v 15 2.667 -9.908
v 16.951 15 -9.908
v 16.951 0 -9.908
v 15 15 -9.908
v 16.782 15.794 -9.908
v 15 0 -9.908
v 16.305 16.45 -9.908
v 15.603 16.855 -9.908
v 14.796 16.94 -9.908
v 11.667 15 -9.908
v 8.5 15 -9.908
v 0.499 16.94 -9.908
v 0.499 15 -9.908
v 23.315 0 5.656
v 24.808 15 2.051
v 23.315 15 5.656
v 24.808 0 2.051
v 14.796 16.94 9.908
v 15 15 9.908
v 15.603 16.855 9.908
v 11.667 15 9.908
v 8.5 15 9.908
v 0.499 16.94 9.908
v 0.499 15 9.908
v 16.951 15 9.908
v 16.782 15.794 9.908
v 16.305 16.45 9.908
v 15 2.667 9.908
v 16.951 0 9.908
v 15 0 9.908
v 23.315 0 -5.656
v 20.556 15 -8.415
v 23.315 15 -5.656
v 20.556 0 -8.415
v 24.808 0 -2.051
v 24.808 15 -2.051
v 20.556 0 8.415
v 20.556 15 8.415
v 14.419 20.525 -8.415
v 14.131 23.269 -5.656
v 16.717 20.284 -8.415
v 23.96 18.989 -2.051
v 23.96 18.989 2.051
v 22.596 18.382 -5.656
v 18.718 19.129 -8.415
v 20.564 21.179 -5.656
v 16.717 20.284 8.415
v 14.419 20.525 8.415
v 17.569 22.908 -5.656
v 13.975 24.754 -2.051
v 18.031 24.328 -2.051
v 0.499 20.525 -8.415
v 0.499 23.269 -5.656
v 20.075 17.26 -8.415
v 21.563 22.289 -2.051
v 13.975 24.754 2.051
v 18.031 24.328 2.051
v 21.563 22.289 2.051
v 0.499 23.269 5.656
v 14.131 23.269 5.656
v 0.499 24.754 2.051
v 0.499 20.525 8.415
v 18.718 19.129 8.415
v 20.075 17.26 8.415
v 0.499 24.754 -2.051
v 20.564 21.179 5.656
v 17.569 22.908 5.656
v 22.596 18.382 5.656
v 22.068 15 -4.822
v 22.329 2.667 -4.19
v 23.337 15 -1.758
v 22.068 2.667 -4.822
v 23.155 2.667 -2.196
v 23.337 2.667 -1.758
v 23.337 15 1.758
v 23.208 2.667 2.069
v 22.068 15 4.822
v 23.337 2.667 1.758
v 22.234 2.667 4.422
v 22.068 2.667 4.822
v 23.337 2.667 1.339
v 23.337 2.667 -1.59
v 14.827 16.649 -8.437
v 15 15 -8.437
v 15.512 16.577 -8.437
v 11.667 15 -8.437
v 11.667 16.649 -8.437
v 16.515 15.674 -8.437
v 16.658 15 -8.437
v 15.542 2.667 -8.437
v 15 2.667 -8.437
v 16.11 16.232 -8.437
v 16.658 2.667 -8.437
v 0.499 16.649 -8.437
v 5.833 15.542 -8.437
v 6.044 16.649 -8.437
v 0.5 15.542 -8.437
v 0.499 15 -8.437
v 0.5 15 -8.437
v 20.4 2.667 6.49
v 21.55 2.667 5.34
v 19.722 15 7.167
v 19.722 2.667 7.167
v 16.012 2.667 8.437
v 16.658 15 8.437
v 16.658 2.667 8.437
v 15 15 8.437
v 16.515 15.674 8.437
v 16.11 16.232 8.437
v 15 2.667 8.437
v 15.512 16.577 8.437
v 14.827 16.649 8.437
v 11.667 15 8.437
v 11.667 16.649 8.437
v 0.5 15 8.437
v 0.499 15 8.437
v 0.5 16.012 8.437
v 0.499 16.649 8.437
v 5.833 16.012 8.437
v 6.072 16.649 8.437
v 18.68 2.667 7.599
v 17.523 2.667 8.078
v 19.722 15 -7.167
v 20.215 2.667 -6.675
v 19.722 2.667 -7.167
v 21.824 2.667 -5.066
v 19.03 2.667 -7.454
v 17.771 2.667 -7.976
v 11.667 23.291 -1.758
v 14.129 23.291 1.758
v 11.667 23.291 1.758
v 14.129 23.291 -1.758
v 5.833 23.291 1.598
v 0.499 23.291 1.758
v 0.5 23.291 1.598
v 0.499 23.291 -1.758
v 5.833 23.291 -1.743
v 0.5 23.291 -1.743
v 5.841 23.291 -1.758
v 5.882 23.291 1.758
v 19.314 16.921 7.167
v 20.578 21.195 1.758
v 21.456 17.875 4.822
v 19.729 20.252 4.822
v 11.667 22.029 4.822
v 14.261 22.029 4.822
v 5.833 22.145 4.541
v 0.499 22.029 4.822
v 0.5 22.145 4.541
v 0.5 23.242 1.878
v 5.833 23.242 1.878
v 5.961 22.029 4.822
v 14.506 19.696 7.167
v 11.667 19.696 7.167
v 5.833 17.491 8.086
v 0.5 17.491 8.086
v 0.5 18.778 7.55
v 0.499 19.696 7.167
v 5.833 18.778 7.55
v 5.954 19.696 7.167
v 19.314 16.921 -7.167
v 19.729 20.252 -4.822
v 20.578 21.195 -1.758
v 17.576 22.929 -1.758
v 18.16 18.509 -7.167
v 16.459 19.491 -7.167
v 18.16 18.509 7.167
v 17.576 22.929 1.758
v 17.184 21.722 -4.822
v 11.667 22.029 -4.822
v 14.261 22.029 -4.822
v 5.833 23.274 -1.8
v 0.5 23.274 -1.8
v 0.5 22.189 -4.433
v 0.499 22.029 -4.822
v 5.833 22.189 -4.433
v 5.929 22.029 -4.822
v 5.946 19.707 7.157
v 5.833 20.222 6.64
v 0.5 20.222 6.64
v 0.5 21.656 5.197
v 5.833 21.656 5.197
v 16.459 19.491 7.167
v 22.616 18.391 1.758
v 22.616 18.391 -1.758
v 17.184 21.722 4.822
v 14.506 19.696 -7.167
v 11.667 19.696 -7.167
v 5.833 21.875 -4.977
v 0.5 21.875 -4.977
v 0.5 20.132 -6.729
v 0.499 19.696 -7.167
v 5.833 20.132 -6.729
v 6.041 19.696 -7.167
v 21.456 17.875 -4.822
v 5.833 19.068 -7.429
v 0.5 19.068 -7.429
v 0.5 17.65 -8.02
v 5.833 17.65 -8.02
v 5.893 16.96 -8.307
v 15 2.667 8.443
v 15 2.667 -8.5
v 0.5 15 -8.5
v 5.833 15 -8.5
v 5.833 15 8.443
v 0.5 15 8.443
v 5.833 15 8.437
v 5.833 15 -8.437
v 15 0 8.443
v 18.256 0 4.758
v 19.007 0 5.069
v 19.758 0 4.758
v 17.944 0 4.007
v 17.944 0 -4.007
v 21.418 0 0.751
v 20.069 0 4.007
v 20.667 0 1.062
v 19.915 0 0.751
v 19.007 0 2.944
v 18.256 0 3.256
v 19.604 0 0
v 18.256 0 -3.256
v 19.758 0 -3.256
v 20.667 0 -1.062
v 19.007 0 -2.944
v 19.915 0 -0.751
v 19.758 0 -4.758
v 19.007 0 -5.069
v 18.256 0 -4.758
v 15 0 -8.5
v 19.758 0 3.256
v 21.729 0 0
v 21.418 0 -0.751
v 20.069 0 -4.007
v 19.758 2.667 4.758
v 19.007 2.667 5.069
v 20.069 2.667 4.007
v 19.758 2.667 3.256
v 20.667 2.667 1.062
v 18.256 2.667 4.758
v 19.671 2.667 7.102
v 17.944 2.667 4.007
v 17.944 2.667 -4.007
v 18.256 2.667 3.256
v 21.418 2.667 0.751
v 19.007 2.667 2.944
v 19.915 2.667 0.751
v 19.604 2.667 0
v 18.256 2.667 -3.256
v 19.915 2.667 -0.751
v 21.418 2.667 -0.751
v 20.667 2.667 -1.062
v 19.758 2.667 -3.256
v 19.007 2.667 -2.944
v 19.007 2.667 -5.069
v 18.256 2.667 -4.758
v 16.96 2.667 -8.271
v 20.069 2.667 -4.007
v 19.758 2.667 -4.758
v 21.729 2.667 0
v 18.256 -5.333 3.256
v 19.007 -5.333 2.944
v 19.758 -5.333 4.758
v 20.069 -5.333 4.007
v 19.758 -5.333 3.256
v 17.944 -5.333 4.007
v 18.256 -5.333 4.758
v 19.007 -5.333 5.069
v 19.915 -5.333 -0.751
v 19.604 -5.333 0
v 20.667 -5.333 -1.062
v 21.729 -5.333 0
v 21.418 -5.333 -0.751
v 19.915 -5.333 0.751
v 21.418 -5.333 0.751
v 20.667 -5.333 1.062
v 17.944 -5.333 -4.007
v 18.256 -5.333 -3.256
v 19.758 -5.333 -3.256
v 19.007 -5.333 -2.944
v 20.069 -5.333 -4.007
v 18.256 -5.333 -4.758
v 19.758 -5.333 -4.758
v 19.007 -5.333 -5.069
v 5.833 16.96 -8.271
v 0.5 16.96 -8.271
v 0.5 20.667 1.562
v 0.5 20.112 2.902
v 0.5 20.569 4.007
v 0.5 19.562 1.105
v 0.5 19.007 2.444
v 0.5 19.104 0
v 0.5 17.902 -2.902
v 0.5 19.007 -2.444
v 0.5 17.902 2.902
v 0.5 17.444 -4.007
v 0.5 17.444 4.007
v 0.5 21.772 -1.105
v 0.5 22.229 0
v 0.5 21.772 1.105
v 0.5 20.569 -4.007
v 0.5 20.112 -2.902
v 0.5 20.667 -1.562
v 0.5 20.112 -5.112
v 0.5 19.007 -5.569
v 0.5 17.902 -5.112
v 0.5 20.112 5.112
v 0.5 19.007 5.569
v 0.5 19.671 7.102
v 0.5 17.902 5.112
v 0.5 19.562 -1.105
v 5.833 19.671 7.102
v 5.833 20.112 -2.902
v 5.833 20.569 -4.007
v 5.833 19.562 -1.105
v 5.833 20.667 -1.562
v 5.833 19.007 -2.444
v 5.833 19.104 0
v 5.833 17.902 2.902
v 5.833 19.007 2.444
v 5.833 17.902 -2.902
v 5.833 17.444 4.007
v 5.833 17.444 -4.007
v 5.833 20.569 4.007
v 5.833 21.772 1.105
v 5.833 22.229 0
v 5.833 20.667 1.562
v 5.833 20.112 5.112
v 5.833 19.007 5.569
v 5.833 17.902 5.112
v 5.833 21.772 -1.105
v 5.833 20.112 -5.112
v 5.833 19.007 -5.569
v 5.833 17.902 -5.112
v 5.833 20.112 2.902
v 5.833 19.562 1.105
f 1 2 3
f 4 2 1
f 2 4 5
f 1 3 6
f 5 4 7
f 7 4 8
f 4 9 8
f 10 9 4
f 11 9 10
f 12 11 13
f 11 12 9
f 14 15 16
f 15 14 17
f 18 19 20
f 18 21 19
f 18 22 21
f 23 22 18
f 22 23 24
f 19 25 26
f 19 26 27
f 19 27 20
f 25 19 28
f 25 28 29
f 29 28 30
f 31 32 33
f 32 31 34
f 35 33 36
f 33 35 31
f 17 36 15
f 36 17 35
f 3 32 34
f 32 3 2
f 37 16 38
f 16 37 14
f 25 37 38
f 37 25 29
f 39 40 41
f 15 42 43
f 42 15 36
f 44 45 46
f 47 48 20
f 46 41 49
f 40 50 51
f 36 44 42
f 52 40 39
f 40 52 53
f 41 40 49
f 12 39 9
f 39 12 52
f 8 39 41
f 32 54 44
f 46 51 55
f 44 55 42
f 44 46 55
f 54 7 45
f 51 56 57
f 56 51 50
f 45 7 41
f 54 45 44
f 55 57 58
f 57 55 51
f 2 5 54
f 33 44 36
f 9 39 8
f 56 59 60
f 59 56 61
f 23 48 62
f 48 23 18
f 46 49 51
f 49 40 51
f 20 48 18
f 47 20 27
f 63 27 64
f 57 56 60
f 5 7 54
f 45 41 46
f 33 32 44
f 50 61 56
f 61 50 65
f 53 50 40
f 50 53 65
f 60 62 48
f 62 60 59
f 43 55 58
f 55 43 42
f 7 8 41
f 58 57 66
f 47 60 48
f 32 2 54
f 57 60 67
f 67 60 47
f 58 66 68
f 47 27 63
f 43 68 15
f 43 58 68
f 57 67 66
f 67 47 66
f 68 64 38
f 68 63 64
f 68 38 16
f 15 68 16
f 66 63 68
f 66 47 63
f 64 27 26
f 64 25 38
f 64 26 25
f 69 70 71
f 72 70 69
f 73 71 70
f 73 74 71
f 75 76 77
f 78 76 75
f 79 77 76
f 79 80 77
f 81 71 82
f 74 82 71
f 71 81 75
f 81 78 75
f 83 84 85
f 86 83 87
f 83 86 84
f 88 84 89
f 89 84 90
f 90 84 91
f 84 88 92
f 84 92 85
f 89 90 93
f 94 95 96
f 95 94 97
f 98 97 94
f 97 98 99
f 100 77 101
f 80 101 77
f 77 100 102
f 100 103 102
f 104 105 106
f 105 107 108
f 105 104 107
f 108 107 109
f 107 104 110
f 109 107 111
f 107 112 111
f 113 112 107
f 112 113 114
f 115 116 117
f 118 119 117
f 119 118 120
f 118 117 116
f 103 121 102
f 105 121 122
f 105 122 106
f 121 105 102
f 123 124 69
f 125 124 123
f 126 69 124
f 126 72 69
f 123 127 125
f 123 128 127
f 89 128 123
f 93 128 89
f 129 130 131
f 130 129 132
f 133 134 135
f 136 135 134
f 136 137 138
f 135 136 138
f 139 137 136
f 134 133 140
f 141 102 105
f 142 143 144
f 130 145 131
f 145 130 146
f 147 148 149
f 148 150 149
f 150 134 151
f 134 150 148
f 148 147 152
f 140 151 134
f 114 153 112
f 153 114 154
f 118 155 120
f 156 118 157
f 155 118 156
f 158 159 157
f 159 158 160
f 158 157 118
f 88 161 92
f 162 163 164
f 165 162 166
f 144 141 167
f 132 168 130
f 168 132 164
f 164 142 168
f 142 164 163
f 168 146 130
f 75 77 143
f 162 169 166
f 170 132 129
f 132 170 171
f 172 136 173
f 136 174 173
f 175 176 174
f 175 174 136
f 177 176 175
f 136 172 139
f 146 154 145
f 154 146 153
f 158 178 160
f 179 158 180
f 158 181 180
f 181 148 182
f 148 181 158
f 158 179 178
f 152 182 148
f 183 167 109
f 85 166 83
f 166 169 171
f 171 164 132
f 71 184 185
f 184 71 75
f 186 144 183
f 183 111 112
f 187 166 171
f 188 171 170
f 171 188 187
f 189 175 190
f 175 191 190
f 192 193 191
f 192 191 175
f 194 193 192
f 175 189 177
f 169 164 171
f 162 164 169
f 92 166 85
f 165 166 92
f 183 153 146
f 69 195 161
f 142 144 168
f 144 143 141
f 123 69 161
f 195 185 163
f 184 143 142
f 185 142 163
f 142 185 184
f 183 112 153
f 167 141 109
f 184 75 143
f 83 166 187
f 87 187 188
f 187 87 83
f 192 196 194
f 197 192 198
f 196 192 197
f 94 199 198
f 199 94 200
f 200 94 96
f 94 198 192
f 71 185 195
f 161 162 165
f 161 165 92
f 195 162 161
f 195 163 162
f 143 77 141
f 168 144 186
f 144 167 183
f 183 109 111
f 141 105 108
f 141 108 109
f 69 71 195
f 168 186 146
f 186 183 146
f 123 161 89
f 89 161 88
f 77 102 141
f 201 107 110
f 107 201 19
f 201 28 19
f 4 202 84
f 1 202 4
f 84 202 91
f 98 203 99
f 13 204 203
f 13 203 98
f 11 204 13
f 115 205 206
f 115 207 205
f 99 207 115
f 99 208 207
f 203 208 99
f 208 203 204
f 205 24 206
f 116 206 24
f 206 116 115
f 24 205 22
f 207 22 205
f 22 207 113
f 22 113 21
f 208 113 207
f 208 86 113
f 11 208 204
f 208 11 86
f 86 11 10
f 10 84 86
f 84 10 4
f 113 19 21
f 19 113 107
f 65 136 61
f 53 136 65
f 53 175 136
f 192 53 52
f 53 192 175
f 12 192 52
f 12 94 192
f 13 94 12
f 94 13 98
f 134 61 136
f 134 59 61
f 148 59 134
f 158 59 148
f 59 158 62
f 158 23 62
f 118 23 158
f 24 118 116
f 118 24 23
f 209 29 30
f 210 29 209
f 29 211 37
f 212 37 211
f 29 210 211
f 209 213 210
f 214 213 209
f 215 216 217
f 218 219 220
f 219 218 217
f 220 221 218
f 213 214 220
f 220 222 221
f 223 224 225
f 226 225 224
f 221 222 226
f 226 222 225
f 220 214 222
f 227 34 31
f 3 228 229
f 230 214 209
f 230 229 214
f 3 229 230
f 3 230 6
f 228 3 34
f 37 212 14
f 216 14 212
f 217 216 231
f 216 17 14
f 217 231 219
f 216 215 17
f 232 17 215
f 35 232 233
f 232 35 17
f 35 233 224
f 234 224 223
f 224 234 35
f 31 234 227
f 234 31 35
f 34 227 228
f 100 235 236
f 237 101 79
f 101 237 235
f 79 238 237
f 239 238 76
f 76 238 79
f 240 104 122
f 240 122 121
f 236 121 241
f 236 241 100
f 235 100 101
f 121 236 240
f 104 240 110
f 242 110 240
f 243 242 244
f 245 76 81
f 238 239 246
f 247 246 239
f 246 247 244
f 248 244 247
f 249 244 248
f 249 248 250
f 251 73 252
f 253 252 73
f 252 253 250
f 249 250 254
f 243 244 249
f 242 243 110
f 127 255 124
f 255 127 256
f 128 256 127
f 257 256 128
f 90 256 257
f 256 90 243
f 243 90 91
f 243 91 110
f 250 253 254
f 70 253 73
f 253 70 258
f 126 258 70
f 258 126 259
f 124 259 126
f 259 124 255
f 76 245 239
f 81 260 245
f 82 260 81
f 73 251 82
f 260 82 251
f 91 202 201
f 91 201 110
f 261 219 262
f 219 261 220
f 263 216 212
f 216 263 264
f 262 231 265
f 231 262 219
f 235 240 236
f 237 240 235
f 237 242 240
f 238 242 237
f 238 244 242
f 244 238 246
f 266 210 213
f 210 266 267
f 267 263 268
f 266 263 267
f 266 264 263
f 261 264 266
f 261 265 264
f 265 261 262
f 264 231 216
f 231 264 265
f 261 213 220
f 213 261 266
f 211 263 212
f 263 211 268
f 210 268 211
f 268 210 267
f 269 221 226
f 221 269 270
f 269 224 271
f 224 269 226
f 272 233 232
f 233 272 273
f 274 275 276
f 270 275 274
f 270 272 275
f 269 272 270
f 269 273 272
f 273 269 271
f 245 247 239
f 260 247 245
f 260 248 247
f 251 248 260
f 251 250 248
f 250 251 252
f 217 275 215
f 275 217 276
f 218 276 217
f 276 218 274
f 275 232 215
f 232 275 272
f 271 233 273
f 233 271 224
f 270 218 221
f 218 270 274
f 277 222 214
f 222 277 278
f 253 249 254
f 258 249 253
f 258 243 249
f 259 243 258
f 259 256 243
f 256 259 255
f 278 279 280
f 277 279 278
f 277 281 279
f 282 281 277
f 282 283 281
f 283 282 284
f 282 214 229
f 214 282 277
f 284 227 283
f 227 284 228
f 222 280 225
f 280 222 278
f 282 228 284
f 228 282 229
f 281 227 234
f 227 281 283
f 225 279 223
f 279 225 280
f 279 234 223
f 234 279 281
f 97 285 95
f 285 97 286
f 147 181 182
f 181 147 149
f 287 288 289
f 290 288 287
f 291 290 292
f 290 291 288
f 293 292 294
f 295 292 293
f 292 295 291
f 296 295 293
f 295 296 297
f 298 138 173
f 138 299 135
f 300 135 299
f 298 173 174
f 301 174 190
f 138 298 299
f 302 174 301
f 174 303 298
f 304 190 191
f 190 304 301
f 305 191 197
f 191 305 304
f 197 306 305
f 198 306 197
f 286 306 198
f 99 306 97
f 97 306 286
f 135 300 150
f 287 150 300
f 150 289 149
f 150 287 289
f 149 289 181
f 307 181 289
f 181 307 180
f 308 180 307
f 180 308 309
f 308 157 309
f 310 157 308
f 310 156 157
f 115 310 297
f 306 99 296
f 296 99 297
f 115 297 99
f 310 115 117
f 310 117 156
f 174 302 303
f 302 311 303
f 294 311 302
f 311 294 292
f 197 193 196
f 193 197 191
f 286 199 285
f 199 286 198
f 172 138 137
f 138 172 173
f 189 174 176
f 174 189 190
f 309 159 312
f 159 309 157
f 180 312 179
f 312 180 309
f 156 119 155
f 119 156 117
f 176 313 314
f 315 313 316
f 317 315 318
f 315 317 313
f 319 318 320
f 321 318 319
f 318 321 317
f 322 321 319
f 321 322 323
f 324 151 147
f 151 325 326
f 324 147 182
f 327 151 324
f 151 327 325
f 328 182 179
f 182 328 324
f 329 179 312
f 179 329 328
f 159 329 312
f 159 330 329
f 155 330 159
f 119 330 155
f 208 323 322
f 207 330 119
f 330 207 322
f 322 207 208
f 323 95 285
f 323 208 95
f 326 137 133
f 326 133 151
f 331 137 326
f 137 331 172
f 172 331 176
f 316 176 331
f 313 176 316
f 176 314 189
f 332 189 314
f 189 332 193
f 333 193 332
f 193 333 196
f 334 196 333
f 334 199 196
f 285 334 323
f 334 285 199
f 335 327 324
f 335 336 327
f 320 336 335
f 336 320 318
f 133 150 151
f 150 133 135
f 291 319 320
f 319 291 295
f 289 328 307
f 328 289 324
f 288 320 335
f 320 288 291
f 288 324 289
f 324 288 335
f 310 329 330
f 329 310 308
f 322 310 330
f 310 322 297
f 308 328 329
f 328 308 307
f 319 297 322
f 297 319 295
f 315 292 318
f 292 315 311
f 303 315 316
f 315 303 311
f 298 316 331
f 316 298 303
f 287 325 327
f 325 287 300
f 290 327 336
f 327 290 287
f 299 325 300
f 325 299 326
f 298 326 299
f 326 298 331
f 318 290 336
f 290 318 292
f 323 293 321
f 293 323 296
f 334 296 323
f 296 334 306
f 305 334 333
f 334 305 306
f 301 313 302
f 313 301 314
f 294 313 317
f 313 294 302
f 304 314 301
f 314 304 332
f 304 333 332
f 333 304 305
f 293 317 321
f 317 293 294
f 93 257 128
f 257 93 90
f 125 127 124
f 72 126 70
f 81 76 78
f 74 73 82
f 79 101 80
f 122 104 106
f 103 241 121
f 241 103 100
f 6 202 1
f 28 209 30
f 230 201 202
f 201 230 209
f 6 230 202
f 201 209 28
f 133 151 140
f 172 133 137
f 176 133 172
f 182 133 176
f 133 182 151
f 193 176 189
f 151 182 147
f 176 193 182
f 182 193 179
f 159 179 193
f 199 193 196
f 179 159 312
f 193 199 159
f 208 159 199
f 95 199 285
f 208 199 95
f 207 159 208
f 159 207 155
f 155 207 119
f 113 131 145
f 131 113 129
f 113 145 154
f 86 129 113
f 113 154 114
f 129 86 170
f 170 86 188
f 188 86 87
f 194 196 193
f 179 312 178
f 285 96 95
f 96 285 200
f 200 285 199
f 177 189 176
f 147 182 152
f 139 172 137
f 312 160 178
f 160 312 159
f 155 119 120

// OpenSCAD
union () {
  intersection () {
    difference () {
      difference () {
        difference () {
          minkowski () {
            intersection () {
              difference () {
                union () {
                  cube ([30, 30, 30], center=true);
                }
                union () {
                  cube ([29.99, 29.99, 29.99], center=true);
                }
              }
              cube ([400, 400, 0.2], center=true);
            }
            sphere ($fn=15, r=10);
          }
          minkowski () {
            intersection () {
              difference () {
                union () {
                  cube ([30, 30, 30], center=true);
                }
                union () {
                  cube ([29.99, 29.99, 29.99], center=true);
                }
              }
              cube ([400, 400, 0.2], center=true);
            }
            sphere ($fn=15, r=8.5);
          }
        }
        union () {
          cube ([30, 30, 30], center=true);
        }
      }
      translate ([0, 15, 0]) {
        translate ([-0.001, 0, 0]) {
          translate ([0.25, 0, 0]) {
            rotate (a=90.0, v=[0, 1, 0]) {
              intersection () {
                translate ([0, 18.0, 0]) {
                  cube ([36.0, 36.0, 36.0], center=true);
                }
                cylinder (h=0.5, r=17.0, center=true);
              }
            }
          }
        }
      }
    }
    translate ([20, 40, 0]) {
      cube ([40, 80, 40], center=true);
    }
  }
  hull () {
    translate ([15, 0, 0]) {
      rotate (a=-90.0, v=[0, 0, 1]) {
        translate ([-8/3, 0, 0]) {
          translate ([4/3, 0, 0]) {
            rotate (a=90.0, v=[0, 1, 0]) {
              intersection () {
                translate ([0, 9.5, 0]) {
                  cube ([19.0, 19.0, 19.0], center=true);
                }
                cylinder (h=8/3, r=8.5, center=true);
              }
            }
          }
        }
      }
    }
    intersection () {
      difference () {
        difference () {
          minkowski () {
            intersection () {
              difference () {
                union () {
                  cube ([30, 30, 30], center=true);
                }
                union () {
                  cube ([29.99, 29.99, 29.99], center=true);
                }
              }
              cube ([400, 400, 0.2], center=true);
            }
            sphere ($fn=15, r=10);
          }
          minkowski () {
            intersection () {
              difference () {
                union () {
                  cube ([30, 30, 30], center=true);
                }
                union () {
                  cube ([29.99, 29.99, 29.99], center=true);
                }
              }
              cube ([400, 400, 0.2], center=true);
            }
            sphere ($fn=15, r=8.5);
          }
        }
        union () {
          cube ([30, 30, 30], center=true);
        }
      }
      translate ([15, 0, 0]) {
        rotate (a=-90.0, v=[0, 0, 1]) {
          translate ([-8/3, 0, 0]) {
            translate ([4/3, 0, 0]) {
              rotate (a=90.0, v=[0, 1, 0]) {
                intersection () {
                  translate ([0, 18.0, 0]) {
                    cube ([36.0, 36.0, 36.0], center=true);
                  }
                  cylinder (h=8/3, r=17.0, center=true);
                }
              }
            }
          }
        }
      }
    }
  }
  translate ([15, 0, 0]) {
    rotate (a=-90.0, v=[0, 0, 1]) {
      union () {
        translate ([-8/3, 0, 0]) {
          translate ([4/3, 0, 0]) {
            rotate (a=90.0, v=[0, 1, 0]) {
              intersection () {
                translate ([0, 9.5, 0]) {
                  cube ([19.0, 19.0, 19.0], center=true);
                }
                cylinder (h=8/3, r=8.5, center=true);
              }
            }
          }
        }
        translate ([-8/3, 0, 0]) {
          union () {
            translate ([4, 0, 0]) {
              rotate (a=45.0, v=[-1, 0, 0]) {
                translate ([0, 0, 5.666666666666667]) {
                  rotate (a=90.0, v=[0, 1, 0]) {
                    cylinder ($fn=8, h=8, r=1.0625, center=true);
                  }
                }
              }
            }
            translate ([4, 0, 0]) {
              rotate (a=90.0, v=[-1, 0, 0]) {
                translate ([0, 0, 5.666666666666667]) {
                  rotate (a=90.0, v=[0, 1, 0]) {
                    cylinder ($fn=8, h=8, r=1.0625, center=true);
                  }
                }
              }
            }
            translate ([4, 0, 0]) {
              rotate (a=135.0, v=[-1, 0, 0]) {
                translate ([0, 0, 5.666666666666667]) {
                  rotate (a=90.0, v=[0, 1, 0]) {
                    cylinder ($fn=8, h=8, r=1.0625, center=true);
                  }
                }
              }
            }
          }
        }
      }
    }
  }
  hull () {
    translate ([0, 15, 0]) {
      translate ([5.833333333333333, 0, 0]) {
        translate ([1.5833333333333335, 0, 0]) {
          rotate (a=90.0, v=[0, 1, 0]) {
            intersection () {
              translate ([0, 9.5, 0]) {
                cube ([19.0, 19.0, 19.0], center=true);
              }
              cylinder (h=3.166666666666667, r=8.5, center=true);
            }
          }
        }
      }
    }
    intersection () {
      difference () {
        difference () {
          minkowski () {
            intersection () {
              difference () {
                union () {
                  cube ([30, 30, 30], center=true);
                }
                union () {
                  cube ([29.99, 29.99, 29.99], center=true);
                }
              }
              cube ([400, 400, 0.2], center=true);
            }
            sphere ($fn=15, r=10);
          }
          minkowski () {
            intersection () {
              difference () {
                union () {
                  cube ([30, 30, 30], center=true);
                }
                union () {
                  cube ([29.99, 29.99, 29.99], center=true);
                }
              }
              cube ([400, 400, 0.2], center=true);
            }
            sphere ($fn=15, r=8.5);
          }
        }
        union () {
          cube ([30, 30, 30], center=true);
        }
      }
      translate ([0, 15, 0]) {
        translate ([8.5, 0, 0]) {
          translate ([1.5833333333333335, 0, 0]) {
            rotate (a=90.0, v=[0, 1, 0]) {
              intersection () {
                translate ([0, 18.0, 0]) {
                  cube ([36.0, 36.0, 36.0], center=true);
                }
                cylinder (h=3.166666666666667, r=17.0, center=true);
              }
            }
          }
        }
      }
    }
  }
  translate ([0, 15, 0]) {
    difference () {
      translate ([0.5, 0, 0]) {
        translate ([8/3, 0, 0]) {
          rotate (a=90.0, v=[0, 1, 0]) {
            intersection () {
              translate ([0, 9.5, 0]) {
                cube ([19.0, 19.0, 19.0], center=true);
              }
              cylinder (h=16/3, r=8.5, center=true);
            }
          }
        }
      }
      translate ([0.5, 0, 0]) {
        union () {
          translate ([4, 0, 0]) {
            rotate (a=45.0, v=[-1, 0, 0]) {
              translate ([0, 0, 5.666666666666667]) {
                rotate (a=90.0, v=[0, 1, 0]) {
                  cylinder ($fn=8, h=9.0, r=1.5625, center=true);
                }
              }
            }
          }
          translate ([4, 0, 0]) {
            rotate (a=90.0, v=[-1, 0, 0]) {
              translate ([0, 0, 5.666666666666667]) {
                rotate (a=90.0, v=[0, 1, 0]) {
                  cylinder ($fn=8, h=9.0, r=1.5625, center=true);
                }
              }
            }
          }
          translate ([4, 0, 0]) {
            rotate (a=135.0, v=[-1, 0, 0]) {
              translate ([0, 0, 5.666666666666667]) {
                rotate (a=90.0, v=[0, 1, 0]) {
                  cylinder ($fn=8, h=9.0, r=1.5625, center=true);
                }
              }
            }
          }
        }
      }
    }
  }
}
